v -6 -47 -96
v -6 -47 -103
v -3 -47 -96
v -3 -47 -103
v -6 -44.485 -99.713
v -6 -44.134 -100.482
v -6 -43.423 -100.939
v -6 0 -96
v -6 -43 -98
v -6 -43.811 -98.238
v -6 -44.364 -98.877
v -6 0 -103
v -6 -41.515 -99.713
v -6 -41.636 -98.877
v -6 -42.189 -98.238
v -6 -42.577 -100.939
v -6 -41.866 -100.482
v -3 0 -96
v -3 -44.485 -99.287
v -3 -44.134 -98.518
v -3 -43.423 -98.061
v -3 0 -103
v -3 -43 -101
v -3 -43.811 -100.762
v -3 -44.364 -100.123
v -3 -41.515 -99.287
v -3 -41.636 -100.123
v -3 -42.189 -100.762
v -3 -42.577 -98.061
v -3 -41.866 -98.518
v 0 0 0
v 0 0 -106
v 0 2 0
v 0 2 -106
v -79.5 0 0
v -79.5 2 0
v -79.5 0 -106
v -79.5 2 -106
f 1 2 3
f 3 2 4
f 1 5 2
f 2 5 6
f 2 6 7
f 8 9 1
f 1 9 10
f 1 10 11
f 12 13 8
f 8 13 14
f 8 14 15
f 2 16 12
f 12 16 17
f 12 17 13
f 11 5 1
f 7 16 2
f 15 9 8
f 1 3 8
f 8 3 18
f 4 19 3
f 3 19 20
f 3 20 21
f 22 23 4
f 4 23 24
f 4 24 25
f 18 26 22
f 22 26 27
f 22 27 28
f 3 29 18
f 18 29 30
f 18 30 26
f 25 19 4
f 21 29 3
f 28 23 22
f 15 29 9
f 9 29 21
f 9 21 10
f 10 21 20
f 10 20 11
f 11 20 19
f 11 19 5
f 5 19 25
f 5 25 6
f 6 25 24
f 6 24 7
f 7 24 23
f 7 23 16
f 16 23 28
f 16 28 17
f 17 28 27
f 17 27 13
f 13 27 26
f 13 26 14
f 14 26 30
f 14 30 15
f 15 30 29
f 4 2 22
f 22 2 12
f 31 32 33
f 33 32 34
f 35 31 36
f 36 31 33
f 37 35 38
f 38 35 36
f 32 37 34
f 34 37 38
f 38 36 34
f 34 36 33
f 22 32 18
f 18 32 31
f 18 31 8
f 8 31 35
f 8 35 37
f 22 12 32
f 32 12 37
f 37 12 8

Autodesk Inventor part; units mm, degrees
ref_plane "YZ Plane" through (0, 0, 0) normal (1, 0, 0) x (0, 1, 0)
ref_plane "XZ Plane" through (0, 0, 0) normal (0, 1, 0) x (-1, 0, 0)
ref_plane "XY Plane" through (0, 0, 0) normal (0, 0, 1) x (1, 0, 0)
sketch "Sketch1" plane through (0, 0, 0) normal (0, 1, 0) x (-1, 0, 0)
  line L0 (0, 0) -> (79.5, 0)
  line L1 (79.5, 0) -> (79.5, -106)
  line L2 (79.5, -106) -> (0, -106)
  line L3 (0, -106) -> (0, 0)
  dimension "d6" = 106
  dimension "d7" = 79.5
extrude "Extrusion1" add sketch "Sketch1" along normal blind 2
sketch "Sketch2" plane through (0, 0, 0) normal (0, -1, 0) x (1, 0, 0)
  line L0 (0, -106) -> (-79.5, -106) projected
  line L1 (0, 0) -> (0, -106) projected
  line L2 (-79.5, 0) -> (0, 0) projected
  line L3 (-79.5, -106) -> (-79.5, 0) projected
  line L4 (-3, -103) -> (-6, -103)
  line L5 (-6, -103) -> (-6, -96)
  line L6 (-6, -96) -> (-3, -96)
  line L7 (-3, -96) -> (-3, -103)
  dimension "d10" = 7
  dimension "d11" = 3
  dimension "d12" = 3
  dimension "d13" = 3
extrude "Extrusion2" add sketch "Sketch2" along normal blind 48 contours L4 L5 L6 L7
sketch "Sketch3" plane through (-3, 0, -96) normal (1, 0, 0) x (0, 0, -1)
  circle A0 centre (3.5, -43) radius 1.5
  line L0 (7, -48) -> (0, -48) projected
  line L1 (7, 0) -> (7, -48) projected
  point P0 (-96, 0)
  dimension "d14" = 5
  dimension "d16" = 3
  dimension "d22" = 3.5
extrude "Extrusion3" cut sketch "Sketch3" against normal blind 33
sketch "Sketch4" plane through (-3, 0, -96) normal (1, 0, 0) x (0, 0, -1)
  circle A0 centre (3.5, -43) radius 1.5 projected
  line L0 (0, 0) -> (7, 0) projected
  line L1 (0, 0) -> (0, -48) projected
  line L2 (7, -48) -> (0, -48) projected
  line L3 (7, 0) -> (7, -48) projected
  line L4 (0, -48) -> (7, -48)
  line L5 (7, -48) -> (7, -47)
  line L6 (7, -47) -> (0, -47)
  line L7 (0, -47) -> (0, -48)
  point P0 (-96, 0)
  point P1 (0, -47)
  dimension "d19" = 1
extrude "Extrusion4" cut sketch "Sketch4" against normal blind 33 contours L6 L3 L2 L1
properties part number "Enclosure Lid"
